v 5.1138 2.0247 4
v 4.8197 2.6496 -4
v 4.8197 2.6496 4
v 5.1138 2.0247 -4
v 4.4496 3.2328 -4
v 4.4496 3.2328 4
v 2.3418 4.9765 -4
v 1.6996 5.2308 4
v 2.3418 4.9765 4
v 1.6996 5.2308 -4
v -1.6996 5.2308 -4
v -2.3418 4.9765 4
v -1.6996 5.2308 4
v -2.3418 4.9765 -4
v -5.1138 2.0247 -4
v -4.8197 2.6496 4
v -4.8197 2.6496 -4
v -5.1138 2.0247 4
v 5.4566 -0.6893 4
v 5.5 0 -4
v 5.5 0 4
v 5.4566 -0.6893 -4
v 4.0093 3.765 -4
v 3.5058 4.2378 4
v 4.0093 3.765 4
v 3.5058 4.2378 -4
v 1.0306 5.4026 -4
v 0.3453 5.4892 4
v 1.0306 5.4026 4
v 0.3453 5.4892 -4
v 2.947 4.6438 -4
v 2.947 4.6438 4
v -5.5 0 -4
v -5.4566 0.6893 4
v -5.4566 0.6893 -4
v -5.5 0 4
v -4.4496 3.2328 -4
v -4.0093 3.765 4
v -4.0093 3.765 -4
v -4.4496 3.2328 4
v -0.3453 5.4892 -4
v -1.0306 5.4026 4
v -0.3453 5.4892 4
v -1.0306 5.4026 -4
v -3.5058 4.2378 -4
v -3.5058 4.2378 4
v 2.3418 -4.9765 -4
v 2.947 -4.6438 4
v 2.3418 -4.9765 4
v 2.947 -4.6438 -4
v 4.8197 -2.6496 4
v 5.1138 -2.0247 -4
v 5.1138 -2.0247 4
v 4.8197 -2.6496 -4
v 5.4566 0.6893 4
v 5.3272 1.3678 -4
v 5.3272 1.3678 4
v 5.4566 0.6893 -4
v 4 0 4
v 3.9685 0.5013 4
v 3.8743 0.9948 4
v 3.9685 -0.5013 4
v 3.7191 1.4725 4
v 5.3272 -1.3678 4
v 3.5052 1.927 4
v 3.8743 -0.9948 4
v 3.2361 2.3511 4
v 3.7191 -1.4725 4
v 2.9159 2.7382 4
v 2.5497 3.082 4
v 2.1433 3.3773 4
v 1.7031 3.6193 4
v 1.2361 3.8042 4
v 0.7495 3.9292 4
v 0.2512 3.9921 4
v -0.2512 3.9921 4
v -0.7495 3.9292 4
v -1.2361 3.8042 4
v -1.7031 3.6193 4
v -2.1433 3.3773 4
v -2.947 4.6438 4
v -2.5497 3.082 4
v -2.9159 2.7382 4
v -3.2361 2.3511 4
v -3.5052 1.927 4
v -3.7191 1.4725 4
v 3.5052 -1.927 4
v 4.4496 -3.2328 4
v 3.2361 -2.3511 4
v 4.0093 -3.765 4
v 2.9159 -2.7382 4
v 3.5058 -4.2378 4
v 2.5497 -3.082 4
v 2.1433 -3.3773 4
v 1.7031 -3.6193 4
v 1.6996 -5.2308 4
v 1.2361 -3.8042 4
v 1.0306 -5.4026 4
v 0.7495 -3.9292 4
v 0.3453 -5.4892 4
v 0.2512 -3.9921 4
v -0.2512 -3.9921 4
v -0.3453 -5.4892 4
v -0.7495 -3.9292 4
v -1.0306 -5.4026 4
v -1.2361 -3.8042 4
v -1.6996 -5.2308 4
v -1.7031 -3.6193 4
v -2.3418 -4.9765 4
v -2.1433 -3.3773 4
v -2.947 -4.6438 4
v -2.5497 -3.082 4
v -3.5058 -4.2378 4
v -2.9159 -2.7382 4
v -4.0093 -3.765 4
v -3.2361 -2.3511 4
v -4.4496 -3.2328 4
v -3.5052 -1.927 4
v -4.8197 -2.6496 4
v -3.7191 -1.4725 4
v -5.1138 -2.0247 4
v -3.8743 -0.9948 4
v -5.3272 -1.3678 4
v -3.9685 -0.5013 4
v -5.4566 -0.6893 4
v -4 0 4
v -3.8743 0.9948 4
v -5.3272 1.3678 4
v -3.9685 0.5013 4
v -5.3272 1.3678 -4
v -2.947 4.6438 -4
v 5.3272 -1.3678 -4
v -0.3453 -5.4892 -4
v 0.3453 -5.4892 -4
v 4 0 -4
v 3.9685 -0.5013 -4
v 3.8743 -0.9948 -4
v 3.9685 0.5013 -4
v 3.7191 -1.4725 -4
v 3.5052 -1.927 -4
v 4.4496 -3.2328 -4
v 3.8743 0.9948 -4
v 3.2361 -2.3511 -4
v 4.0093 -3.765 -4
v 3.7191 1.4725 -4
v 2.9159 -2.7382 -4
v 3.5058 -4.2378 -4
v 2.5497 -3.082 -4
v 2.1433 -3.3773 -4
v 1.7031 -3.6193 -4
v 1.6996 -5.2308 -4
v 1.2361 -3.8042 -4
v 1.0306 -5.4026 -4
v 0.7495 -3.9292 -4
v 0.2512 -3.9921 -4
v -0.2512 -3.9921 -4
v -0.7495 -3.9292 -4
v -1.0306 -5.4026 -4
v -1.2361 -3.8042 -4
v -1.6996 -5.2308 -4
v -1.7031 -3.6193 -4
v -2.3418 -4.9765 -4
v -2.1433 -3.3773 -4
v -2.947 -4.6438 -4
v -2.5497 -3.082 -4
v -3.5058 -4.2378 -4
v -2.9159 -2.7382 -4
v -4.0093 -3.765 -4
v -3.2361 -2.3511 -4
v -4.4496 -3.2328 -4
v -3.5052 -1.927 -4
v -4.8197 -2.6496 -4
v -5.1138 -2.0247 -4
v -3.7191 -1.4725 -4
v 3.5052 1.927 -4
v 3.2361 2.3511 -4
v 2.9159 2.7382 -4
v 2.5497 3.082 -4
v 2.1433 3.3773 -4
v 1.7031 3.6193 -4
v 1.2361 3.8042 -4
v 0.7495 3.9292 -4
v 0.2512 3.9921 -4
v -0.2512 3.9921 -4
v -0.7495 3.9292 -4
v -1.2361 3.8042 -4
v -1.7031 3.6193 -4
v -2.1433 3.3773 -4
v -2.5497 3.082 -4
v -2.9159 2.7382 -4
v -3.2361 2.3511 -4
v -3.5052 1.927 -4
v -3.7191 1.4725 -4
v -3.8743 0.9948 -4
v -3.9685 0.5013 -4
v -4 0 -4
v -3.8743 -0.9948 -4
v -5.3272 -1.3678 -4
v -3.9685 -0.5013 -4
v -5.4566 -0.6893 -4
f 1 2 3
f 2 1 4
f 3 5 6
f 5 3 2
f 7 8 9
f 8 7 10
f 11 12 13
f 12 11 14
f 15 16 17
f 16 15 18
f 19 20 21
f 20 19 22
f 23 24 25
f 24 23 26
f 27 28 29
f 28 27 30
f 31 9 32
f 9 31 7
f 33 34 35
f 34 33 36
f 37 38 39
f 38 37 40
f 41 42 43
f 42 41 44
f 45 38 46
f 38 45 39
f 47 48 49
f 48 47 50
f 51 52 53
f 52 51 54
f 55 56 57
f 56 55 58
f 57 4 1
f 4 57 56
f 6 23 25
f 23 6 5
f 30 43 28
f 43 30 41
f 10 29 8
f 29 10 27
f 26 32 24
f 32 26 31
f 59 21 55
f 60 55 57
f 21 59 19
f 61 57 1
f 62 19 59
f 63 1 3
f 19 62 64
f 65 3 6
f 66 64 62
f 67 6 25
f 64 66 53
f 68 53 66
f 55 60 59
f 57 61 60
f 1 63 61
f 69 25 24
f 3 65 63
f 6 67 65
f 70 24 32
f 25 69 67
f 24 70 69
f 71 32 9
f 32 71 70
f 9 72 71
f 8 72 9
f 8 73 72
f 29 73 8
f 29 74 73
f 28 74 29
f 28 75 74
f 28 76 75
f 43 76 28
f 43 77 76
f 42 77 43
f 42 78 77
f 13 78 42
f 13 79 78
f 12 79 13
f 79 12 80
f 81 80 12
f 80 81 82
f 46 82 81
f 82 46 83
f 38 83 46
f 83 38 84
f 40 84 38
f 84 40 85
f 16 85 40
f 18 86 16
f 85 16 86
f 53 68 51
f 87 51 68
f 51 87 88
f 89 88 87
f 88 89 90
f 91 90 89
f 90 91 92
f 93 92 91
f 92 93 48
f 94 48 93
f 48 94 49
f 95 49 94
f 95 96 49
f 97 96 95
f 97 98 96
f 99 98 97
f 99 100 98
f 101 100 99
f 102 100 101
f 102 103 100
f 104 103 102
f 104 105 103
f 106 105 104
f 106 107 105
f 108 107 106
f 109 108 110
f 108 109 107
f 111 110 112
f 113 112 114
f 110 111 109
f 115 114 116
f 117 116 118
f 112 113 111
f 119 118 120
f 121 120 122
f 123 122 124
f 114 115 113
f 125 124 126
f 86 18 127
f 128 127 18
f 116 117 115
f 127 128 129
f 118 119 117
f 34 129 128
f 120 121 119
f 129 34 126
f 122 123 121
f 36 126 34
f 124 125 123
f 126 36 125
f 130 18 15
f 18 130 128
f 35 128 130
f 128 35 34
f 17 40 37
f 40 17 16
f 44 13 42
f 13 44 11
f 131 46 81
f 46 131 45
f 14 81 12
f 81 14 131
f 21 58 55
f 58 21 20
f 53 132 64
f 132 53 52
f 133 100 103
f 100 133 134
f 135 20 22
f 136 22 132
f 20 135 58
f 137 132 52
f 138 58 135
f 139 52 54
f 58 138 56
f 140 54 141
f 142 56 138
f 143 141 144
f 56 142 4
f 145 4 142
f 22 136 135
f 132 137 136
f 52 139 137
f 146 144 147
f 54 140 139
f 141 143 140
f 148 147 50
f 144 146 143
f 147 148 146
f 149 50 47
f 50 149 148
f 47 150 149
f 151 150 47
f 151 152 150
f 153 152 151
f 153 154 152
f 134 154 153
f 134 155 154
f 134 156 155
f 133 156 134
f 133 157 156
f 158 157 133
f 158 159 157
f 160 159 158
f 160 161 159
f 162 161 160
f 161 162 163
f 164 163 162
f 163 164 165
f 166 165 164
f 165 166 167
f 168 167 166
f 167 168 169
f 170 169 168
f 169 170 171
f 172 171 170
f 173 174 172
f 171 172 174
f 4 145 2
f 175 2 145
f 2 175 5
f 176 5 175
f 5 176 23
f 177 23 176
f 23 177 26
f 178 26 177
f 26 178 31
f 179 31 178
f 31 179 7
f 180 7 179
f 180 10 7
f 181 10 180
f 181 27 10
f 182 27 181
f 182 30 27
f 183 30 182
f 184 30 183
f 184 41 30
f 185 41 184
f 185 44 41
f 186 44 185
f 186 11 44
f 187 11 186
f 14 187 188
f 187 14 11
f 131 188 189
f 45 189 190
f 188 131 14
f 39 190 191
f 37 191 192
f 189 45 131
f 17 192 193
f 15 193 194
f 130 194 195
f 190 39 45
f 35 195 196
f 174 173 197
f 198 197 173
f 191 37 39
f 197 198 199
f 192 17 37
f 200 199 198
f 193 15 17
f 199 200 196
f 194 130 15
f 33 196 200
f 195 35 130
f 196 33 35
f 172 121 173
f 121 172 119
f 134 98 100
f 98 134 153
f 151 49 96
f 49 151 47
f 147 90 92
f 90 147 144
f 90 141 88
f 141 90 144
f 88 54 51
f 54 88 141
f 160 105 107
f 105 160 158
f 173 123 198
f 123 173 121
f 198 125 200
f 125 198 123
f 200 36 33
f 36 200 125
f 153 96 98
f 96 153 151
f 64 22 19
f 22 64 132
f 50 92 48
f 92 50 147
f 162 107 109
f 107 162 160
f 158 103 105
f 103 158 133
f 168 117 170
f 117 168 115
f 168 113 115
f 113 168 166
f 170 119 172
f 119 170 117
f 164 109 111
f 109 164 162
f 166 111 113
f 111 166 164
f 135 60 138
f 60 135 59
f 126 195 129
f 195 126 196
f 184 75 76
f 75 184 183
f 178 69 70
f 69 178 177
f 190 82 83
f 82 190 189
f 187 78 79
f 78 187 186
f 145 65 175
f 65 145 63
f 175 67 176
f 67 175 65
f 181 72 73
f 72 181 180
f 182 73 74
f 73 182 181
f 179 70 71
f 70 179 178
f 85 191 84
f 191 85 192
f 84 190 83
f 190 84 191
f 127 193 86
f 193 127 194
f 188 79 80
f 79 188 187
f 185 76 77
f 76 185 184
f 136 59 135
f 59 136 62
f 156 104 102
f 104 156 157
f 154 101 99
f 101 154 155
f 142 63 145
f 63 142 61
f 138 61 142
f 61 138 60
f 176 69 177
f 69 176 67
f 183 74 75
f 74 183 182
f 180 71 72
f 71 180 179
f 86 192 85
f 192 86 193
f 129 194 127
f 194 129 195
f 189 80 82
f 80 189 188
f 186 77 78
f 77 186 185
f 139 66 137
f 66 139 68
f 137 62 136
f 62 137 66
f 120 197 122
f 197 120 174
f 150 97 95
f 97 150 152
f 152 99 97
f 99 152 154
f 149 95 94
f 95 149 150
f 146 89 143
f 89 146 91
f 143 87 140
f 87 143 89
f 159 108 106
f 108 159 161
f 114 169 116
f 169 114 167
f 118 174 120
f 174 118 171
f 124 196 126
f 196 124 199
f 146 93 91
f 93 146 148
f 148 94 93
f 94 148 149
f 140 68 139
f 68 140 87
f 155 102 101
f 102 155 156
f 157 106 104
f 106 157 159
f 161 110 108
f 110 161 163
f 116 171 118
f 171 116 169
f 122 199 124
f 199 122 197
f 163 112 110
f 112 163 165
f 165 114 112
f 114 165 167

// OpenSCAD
$fn = 50;


difference() {
	union() {
		translate(v = [0, 0, -4.0000000000]) {
			cylinder(h = 8, r = 5.5000000000);
		}
	}
	union() {
		translate(v = [0, 0, -100.0000000000]) {
			cylinder(h = 200, r = 4);
		}
	}
}
